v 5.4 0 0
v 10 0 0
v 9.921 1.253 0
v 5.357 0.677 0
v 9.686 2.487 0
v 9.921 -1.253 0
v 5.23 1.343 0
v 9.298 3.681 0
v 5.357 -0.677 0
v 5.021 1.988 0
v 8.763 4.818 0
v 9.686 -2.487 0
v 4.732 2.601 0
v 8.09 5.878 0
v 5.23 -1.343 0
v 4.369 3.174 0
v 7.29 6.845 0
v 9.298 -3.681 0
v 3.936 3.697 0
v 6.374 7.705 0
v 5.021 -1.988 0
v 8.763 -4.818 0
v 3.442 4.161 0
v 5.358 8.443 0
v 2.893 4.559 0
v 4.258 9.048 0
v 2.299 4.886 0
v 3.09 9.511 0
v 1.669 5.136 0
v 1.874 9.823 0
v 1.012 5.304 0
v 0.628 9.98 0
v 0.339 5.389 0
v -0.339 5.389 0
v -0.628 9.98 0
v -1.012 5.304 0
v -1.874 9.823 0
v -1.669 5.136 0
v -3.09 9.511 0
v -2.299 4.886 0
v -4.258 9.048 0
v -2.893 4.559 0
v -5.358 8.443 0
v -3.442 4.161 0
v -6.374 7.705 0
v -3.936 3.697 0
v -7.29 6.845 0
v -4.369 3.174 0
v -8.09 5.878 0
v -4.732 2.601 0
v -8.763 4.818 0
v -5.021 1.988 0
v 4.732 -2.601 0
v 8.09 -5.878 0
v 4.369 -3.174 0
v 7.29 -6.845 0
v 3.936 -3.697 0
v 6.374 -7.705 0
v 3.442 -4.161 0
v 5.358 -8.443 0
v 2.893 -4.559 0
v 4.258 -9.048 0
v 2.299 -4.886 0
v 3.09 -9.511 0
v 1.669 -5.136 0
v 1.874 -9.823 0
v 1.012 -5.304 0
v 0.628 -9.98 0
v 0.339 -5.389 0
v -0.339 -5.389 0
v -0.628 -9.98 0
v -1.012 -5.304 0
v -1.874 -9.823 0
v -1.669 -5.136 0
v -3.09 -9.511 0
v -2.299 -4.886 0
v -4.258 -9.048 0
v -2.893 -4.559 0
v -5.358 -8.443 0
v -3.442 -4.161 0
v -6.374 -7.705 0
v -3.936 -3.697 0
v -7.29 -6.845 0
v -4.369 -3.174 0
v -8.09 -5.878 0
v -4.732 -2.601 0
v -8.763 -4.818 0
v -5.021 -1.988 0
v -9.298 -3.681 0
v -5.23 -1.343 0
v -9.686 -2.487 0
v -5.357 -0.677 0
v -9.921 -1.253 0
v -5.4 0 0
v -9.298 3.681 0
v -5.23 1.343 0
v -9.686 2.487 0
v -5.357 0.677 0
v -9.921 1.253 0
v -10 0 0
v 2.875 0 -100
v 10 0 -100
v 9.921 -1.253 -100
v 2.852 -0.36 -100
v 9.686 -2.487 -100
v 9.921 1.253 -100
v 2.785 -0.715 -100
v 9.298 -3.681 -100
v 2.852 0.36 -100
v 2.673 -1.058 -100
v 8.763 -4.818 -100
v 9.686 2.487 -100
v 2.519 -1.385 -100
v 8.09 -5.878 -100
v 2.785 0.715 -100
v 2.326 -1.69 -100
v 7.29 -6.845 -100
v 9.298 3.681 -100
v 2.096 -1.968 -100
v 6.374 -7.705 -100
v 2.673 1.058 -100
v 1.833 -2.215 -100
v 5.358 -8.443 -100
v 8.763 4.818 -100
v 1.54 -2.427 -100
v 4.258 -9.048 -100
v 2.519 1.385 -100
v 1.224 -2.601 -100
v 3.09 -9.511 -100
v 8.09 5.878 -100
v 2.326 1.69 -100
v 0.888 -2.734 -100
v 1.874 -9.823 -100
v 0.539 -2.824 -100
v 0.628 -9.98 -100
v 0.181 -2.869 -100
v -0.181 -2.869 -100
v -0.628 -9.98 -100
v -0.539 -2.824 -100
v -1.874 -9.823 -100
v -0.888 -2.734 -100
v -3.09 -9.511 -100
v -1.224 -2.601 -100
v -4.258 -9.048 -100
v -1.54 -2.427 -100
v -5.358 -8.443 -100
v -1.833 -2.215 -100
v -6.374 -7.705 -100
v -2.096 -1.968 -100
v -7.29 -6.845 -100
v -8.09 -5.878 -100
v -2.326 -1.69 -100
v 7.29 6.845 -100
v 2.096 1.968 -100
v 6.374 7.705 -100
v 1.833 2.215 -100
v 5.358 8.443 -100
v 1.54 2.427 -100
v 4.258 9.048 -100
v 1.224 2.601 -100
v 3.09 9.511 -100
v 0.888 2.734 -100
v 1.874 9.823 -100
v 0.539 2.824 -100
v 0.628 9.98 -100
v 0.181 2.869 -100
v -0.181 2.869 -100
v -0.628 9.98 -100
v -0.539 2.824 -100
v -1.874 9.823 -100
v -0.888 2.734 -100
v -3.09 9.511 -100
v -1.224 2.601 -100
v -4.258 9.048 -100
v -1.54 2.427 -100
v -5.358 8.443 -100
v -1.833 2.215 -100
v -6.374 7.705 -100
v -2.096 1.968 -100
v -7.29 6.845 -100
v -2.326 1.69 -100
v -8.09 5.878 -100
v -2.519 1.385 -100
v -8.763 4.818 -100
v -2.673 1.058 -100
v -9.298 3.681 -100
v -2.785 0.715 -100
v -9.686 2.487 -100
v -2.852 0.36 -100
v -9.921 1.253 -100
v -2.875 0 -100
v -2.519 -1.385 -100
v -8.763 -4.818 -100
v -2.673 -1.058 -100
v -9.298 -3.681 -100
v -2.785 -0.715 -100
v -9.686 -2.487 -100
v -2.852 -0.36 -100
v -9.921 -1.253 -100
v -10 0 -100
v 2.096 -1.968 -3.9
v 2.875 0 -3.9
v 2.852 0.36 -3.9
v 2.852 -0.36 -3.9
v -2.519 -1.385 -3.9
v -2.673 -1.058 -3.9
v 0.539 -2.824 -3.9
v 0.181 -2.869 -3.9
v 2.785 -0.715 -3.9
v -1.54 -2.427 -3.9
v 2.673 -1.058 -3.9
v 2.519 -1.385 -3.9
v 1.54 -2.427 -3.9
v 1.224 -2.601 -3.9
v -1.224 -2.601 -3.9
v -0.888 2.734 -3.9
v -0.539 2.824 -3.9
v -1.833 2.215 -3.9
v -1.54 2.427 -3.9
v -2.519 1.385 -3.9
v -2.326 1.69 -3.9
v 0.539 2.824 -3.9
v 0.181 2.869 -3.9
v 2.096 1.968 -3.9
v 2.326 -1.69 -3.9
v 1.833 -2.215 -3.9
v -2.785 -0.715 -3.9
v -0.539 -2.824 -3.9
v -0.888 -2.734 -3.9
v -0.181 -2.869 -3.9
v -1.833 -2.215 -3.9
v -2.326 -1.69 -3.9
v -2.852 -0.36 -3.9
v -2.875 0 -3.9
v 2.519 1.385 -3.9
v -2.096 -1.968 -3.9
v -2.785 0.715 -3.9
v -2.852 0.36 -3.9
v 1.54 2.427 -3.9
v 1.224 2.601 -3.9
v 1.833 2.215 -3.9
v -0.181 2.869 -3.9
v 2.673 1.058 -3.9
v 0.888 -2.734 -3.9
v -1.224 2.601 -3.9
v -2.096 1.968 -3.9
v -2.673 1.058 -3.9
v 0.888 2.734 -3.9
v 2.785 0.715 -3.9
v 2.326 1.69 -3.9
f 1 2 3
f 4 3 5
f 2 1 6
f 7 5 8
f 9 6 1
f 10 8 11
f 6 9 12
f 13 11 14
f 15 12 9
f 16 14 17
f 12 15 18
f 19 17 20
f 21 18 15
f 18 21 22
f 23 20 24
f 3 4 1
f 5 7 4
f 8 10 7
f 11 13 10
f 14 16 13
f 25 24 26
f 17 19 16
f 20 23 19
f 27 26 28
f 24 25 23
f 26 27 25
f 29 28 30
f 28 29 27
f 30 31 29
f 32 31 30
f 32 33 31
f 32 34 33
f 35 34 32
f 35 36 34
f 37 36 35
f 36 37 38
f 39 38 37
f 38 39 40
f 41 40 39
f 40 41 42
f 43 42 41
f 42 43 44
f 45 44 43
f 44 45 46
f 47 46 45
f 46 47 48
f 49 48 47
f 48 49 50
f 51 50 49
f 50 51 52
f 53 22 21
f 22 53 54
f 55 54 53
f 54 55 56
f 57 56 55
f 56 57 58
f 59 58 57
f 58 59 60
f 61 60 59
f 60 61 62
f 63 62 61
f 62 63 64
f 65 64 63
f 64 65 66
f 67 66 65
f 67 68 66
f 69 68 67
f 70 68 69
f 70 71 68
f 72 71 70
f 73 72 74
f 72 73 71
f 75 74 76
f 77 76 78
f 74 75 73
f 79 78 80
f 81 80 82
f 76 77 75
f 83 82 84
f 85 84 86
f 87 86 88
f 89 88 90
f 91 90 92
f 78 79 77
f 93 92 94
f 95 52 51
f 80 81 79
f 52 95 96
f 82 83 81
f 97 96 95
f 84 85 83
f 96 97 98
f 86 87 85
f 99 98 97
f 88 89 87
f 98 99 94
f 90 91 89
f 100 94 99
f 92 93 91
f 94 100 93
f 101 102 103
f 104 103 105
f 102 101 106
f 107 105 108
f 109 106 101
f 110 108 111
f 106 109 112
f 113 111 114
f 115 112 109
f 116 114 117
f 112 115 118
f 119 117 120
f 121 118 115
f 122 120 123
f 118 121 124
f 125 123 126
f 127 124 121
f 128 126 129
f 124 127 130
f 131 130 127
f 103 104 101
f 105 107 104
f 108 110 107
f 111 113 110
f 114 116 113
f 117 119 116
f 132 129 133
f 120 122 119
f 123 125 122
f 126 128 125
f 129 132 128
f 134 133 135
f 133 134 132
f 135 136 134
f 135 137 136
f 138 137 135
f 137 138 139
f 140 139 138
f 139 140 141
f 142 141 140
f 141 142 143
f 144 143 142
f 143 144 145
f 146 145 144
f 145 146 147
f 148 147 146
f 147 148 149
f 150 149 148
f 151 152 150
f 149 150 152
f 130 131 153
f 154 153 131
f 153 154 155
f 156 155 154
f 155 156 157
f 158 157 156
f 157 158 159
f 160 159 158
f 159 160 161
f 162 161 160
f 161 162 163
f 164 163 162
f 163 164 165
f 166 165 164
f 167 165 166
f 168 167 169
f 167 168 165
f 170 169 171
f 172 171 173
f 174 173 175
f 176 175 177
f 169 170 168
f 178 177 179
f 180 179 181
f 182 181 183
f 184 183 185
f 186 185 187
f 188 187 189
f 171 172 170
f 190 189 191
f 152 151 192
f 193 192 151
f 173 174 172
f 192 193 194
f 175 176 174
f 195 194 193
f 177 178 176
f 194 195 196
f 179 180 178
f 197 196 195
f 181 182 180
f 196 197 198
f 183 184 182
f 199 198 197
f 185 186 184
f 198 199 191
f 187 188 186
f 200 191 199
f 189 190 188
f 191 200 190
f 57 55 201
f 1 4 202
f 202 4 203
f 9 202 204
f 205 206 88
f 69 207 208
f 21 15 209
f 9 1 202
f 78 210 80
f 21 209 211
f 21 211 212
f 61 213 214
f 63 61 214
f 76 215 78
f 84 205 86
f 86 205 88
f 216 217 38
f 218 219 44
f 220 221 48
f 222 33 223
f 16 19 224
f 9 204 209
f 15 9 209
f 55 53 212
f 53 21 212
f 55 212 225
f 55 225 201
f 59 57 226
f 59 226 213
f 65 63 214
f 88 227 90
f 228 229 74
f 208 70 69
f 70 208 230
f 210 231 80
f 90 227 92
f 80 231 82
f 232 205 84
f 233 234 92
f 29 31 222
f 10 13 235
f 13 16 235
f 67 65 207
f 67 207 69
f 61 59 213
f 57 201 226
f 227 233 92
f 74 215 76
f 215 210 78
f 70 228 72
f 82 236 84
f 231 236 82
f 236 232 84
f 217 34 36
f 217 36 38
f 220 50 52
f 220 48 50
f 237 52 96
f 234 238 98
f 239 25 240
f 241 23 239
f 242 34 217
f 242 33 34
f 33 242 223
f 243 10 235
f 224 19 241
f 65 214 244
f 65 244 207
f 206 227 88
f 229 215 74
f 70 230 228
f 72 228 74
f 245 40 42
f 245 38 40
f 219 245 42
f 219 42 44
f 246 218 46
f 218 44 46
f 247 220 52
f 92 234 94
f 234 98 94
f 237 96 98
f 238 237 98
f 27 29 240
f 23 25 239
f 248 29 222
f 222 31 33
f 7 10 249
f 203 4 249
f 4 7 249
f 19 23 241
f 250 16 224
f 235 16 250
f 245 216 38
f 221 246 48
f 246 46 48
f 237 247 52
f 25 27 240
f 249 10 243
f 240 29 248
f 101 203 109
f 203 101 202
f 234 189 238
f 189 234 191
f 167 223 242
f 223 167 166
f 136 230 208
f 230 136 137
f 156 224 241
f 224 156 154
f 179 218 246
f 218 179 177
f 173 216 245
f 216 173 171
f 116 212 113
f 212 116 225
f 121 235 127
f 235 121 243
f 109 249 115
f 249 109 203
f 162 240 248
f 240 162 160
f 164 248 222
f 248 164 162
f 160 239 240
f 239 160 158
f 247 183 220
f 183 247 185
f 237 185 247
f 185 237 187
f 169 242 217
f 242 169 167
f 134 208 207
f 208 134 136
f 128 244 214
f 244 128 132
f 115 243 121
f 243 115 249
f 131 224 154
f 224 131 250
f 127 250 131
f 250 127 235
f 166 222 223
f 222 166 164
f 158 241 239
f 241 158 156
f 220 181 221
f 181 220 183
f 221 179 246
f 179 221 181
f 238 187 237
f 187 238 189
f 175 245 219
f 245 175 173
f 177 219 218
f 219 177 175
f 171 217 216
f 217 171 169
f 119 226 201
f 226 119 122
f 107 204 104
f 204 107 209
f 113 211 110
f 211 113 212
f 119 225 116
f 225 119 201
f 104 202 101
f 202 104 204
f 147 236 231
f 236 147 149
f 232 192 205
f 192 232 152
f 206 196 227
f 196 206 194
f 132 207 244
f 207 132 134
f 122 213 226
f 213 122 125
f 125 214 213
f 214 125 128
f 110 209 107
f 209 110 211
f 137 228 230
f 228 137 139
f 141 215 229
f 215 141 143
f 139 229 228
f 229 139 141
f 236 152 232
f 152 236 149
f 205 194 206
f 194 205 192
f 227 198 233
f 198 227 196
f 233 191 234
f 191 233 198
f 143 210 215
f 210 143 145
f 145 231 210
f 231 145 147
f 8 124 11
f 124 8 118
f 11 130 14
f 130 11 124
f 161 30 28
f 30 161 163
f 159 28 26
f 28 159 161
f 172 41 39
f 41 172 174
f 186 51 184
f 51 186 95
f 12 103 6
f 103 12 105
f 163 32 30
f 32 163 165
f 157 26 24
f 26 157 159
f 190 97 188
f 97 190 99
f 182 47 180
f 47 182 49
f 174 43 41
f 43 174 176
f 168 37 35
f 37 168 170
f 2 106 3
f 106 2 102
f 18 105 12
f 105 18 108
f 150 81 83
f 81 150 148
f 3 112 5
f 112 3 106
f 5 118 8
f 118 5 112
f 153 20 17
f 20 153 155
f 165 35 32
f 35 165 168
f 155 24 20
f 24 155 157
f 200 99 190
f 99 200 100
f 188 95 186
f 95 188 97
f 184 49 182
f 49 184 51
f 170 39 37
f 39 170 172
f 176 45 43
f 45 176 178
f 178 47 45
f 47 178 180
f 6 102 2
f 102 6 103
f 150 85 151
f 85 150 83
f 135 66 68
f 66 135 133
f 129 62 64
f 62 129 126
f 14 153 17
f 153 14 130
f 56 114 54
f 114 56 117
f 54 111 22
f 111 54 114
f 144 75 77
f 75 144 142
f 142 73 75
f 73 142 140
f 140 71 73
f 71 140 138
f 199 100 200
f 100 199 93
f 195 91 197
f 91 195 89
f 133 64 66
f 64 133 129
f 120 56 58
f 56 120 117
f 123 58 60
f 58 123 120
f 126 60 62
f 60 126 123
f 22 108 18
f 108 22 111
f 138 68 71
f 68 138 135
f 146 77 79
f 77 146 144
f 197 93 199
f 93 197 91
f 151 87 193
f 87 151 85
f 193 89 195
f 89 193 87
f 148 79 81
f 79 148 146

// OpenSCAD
$fn = 50;


difference() {
	union() {
		translate(v = [0, 0, -100.0000000000]) {
			cylinder(h = 100, r = 10.0000000000);
		}
		cylinder(h = 0, r = 19.0000000000);
	}
	union() {
		translate(v = [0, 0, 0]) {
			rotate(a = [0, 0, 0]) {
				difference() {
					union() {
						#translate(v = [0, 0, -100.0000000000]) {
							cylinder(h = 100, r = 2.6000000000);
						}
						#translate(v = [0, 0, -3.9000000000]) {
							cylinder(h = 3.9000000000, r1 = 2.8750000000, r2 = 5.4000000000);
						}
						#translate(v = [0, 0, -100.0000000000]) {
							cylinder(h = 100, r = 2.8750000000);
						}
						#translate(v = [0, 0, -100.0000000000]) {
							cylinder(h = 100, r = 2.6000000000);
						}
					}
					union();
				}
			}
		}
	}
}
